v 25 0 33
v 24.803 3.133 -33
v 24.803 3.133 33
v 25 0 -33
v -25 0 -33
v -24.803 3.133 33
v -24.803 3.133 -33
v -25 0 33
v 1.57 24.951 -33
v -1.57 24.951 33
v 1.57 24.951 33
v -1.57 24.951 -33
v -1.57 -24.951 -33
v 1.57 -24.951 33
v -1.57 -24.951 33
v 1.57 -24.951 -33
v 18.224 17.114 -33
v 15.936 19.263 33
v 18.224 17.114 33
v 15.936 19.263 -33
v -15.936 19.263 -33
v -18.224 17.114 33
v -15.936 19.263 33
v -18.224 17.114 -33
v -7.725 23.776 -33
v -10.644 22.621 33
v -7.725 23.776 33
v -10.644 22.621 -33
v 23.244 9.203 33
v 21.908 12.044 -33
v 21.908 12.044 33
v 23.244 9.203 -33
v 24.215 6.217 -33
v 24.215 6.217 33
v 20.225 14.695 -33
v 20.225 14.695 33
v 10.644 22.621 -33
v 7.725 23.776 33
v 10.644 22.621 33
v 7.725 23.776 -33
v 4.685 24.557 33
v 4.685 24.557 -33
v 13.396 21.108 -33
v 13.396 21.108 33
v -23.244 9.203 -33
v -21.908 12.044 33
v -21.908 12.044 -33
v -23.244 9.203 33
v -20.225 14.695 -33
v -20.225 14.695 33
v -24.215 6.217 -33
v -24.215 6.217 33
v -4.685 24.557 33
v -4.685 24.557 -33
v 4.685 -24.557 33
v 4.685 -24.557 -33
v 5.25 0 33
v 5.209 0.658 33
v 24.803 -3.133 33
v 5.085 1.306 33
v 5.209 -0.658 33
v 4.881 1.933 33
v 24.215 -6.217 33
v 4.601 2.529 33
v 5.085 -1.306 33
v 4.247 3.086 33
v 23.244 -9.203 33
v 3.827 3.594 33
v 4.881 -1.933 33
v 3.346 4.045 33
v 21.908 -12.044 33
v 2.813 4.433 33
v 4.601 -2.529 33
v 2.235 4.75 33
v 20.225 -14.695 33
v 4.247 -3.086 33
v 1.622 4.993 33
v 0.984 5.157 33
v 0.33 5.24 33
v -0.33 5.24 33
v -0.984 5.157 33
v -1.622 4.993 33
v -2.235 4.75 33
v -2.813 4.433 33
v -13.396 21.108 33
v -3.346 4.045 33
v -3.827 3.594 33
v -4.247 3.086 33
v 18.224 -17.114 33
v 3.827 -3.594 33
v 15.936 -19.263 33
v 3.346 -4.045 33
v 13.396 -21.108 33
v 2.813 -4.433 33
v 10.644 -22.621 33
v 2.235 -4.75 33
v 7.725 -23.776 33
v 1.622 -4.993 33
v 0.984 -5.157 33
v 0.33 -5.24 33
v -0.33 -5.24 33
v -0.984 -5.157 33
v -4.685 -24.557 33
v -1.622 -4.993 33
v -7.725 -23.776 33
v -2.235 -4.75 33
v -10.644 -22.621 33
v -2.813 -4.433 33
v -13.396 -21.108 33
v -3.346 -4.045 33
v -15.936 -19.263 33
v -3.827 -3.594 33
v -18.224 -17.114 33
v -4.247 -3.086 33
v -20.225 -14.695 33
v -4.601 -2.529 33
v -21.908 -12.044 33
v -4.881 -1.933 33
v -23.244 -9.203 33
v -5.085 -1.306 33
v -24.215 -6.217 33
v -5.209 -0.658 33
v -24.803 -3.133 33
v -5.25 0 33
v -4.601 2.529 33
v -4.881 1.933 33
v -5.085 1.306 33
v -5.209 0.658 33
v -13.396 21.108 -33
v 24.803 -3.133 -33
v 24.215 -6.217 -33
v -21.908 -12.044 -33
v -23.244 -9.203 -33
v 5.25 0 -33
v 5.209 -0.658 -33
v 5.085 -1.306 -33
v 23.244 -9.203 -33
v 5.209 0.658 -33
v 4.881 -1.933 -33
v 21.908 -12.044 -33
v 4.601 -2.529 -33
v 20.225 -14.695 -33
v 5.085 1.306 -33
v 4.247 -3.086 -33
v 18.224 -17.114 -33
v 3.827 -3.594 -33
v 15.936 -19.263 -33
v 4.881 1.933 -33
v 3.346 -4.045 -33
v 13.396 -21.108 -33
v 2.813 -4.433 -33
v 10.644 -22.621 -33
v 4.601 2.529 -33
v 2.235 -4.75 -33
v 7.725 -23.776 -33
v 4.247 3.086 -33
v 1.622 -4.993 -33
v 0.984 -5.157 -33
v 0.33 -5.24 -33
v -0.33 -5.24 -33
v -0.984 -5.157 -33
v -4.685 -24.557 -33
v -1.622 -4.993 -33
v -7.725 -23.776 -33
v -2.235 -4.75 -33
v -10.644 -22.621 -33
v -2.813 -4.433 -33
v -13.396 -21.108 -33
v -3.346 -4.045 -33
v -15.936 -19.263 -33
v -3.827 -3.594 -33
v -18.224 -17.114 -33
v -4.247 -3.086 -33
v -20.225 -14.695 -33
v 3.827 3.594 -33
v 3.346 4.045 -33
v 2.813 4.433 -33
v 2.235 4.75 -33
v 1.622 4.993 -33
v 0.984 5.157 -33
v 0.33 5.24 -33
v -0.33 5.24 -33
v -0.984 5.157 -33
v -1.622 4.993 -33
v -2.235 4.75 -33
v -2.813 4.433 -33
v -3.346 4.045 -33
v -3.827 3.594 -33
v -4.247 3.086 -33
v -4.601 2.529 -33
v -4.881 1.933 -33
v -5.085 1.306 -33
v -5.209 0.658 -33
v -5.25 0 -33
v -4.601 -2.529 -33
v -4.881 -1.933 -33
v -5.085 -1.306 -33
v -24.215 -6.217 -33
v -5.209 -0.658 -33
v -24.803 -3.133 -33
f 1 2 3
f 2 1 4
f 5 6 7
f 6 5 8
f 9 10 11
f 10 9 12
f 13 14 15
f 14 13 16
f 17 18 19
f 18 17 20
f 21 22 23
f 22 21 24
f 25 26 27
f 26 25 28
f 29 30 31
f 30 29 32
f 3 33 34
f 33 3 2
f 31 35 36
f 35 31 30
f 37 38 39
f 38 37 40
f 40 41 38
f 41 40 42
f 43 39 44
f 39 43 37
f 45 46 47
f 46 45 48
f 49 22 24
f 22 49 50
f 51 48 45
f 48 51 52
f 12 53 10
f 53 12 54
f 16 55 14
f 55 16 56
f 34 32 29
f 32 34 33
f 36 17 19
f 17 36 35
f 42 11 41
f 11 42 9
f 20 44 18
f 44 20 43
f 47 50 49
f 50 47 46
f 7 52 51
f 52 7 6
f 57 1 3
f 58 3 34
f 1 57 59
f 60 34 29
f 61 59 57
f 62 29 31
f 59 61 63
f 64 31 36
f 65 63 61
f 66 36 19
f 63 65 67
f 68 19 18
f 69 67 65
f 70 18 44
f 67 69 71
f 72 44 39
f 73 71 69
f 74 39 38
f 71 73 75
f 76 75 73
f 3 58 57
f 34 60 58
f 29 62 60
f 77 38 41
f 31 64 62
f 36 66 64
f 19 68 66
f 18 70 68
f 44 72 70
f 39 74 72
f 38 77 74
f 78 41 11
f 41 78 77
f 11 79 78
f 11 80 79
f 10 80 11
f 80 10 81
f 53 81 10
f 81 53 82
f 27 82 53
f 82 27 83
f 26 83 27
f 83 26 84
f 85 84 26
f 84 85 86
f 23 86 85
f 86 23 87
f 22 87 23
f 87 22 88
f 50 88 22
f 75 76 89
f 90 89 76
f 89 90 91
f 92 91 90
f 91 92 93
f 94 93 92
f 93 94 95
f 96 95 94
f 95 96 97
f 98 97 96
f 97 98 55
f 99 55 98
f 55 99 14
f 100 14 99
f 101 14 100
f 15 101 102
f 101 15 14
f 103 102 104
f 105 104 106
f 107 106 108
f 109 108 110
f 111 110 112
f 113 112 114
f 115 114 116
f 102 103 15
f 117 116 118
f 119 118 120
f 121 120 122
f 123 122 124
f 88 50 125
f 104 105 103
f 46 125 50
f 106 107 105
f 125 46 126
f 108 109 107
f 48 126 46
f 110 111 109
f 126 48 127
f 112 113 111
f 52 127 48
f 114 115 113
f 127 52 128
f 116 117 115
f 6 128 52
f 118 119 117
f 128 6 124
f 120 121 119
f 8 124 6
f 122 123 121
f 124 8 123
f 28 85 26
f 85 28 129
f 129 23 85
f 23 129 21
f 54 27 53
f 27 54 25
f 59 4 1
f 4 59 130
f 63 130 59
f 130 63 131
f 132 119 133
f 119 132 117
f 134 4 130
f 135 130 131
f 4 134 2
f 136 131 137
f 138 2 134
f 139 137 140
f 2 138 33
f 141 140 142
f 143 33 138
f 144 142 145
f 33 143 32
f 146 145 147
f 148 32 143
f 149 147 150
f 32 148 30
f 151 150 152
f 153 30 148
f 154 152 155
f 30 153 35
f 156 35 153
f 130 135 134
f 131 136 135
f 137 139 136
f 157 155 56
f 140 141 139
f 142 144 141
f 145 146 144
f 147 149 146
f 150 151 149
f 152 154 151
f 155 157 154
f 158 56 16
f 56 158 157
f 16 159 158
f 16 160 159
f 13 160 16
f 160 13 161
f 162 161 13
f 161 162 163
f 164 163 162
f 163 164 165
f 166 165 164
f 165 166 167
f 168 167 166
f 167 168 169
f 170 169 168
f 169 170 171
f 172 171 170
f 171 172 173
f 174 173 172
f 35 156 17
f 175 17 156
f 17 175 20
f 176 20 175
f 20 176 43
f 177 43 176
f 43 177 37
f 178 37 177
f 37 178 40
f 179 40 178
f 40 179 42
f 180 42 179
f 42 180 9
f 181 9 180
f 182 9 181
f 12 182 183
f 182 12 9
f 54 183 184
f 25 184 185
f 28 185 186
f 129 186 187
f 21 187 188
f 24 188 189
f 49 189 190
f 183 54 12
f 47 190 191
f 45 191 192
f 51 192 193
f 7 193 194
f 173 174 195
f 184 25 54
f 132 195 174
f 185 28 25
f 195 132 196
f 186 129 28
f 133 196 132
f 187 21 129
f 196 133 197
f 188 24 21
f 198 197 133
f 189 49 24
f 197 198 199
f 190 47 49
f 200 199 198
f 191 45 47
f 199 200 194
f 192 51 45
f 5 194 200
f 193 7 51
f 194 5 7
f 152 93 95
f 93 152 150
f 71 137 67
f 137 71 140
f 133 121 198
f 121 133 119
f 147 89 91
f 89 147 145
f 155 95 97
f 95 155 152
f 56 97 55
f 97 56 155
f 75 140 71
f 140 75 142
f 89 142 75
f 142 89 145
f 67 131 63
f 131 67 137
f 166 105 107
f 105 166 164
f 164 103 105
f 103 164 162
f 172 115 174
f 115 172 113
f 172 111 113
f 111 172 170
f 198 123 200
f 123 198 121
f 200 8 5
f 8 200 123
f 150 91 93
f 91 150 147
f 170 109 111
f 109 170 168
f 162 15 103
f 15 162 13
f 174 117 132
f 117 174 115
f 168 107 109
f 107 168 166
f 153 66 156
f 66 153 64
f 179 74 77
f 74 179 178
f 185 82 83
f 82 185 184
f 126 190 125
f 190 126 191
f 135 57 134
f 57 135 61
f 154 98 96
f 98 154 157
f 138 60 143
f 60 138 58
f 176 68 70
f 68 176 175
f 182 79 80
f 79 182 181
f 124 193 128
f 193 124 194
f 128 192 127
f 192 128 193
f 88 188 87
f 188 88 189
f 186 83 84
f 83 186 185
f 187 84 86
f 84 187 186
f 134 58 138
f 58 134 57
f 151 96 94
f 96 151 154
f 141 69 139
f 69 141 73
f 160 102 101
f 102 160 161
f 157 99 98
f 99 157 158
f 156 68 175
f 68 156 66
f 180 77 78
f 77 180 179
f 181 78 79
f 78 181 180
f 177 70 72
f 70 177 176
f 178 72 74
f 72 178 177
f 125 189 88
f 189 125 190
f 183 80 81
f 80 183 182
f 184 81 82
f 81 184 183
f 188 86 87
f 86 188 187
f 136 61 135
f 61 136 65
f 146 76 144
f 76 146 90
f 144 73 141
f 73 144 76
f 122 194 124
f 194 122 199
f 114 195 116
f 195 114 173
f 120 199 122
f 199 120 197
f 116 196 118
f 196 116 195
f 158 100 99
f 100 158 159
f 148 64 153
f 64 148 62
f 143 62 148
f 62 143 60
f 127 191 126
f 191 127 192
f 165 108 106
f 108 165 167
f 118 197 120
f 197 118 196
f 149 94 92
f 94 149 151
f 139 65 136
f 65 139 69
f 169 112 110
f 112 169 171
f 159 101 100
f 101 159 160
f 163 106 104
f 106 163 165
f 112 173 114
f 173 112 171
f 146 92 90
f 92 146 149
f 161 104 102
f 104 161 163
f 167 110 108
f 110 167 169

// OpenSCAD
$fn = 50;


difference() {
	union() {
		translate(v = [0, 0, -33.0000000000]) {
			cylinder(h = 66, r = 25.0000000000);
		}
	}
	union() {
		translate(v = [0, 0, -100.0000000000]) {
			cylinder(h = 200, r = 5.2500000000);
		}
	}
}
